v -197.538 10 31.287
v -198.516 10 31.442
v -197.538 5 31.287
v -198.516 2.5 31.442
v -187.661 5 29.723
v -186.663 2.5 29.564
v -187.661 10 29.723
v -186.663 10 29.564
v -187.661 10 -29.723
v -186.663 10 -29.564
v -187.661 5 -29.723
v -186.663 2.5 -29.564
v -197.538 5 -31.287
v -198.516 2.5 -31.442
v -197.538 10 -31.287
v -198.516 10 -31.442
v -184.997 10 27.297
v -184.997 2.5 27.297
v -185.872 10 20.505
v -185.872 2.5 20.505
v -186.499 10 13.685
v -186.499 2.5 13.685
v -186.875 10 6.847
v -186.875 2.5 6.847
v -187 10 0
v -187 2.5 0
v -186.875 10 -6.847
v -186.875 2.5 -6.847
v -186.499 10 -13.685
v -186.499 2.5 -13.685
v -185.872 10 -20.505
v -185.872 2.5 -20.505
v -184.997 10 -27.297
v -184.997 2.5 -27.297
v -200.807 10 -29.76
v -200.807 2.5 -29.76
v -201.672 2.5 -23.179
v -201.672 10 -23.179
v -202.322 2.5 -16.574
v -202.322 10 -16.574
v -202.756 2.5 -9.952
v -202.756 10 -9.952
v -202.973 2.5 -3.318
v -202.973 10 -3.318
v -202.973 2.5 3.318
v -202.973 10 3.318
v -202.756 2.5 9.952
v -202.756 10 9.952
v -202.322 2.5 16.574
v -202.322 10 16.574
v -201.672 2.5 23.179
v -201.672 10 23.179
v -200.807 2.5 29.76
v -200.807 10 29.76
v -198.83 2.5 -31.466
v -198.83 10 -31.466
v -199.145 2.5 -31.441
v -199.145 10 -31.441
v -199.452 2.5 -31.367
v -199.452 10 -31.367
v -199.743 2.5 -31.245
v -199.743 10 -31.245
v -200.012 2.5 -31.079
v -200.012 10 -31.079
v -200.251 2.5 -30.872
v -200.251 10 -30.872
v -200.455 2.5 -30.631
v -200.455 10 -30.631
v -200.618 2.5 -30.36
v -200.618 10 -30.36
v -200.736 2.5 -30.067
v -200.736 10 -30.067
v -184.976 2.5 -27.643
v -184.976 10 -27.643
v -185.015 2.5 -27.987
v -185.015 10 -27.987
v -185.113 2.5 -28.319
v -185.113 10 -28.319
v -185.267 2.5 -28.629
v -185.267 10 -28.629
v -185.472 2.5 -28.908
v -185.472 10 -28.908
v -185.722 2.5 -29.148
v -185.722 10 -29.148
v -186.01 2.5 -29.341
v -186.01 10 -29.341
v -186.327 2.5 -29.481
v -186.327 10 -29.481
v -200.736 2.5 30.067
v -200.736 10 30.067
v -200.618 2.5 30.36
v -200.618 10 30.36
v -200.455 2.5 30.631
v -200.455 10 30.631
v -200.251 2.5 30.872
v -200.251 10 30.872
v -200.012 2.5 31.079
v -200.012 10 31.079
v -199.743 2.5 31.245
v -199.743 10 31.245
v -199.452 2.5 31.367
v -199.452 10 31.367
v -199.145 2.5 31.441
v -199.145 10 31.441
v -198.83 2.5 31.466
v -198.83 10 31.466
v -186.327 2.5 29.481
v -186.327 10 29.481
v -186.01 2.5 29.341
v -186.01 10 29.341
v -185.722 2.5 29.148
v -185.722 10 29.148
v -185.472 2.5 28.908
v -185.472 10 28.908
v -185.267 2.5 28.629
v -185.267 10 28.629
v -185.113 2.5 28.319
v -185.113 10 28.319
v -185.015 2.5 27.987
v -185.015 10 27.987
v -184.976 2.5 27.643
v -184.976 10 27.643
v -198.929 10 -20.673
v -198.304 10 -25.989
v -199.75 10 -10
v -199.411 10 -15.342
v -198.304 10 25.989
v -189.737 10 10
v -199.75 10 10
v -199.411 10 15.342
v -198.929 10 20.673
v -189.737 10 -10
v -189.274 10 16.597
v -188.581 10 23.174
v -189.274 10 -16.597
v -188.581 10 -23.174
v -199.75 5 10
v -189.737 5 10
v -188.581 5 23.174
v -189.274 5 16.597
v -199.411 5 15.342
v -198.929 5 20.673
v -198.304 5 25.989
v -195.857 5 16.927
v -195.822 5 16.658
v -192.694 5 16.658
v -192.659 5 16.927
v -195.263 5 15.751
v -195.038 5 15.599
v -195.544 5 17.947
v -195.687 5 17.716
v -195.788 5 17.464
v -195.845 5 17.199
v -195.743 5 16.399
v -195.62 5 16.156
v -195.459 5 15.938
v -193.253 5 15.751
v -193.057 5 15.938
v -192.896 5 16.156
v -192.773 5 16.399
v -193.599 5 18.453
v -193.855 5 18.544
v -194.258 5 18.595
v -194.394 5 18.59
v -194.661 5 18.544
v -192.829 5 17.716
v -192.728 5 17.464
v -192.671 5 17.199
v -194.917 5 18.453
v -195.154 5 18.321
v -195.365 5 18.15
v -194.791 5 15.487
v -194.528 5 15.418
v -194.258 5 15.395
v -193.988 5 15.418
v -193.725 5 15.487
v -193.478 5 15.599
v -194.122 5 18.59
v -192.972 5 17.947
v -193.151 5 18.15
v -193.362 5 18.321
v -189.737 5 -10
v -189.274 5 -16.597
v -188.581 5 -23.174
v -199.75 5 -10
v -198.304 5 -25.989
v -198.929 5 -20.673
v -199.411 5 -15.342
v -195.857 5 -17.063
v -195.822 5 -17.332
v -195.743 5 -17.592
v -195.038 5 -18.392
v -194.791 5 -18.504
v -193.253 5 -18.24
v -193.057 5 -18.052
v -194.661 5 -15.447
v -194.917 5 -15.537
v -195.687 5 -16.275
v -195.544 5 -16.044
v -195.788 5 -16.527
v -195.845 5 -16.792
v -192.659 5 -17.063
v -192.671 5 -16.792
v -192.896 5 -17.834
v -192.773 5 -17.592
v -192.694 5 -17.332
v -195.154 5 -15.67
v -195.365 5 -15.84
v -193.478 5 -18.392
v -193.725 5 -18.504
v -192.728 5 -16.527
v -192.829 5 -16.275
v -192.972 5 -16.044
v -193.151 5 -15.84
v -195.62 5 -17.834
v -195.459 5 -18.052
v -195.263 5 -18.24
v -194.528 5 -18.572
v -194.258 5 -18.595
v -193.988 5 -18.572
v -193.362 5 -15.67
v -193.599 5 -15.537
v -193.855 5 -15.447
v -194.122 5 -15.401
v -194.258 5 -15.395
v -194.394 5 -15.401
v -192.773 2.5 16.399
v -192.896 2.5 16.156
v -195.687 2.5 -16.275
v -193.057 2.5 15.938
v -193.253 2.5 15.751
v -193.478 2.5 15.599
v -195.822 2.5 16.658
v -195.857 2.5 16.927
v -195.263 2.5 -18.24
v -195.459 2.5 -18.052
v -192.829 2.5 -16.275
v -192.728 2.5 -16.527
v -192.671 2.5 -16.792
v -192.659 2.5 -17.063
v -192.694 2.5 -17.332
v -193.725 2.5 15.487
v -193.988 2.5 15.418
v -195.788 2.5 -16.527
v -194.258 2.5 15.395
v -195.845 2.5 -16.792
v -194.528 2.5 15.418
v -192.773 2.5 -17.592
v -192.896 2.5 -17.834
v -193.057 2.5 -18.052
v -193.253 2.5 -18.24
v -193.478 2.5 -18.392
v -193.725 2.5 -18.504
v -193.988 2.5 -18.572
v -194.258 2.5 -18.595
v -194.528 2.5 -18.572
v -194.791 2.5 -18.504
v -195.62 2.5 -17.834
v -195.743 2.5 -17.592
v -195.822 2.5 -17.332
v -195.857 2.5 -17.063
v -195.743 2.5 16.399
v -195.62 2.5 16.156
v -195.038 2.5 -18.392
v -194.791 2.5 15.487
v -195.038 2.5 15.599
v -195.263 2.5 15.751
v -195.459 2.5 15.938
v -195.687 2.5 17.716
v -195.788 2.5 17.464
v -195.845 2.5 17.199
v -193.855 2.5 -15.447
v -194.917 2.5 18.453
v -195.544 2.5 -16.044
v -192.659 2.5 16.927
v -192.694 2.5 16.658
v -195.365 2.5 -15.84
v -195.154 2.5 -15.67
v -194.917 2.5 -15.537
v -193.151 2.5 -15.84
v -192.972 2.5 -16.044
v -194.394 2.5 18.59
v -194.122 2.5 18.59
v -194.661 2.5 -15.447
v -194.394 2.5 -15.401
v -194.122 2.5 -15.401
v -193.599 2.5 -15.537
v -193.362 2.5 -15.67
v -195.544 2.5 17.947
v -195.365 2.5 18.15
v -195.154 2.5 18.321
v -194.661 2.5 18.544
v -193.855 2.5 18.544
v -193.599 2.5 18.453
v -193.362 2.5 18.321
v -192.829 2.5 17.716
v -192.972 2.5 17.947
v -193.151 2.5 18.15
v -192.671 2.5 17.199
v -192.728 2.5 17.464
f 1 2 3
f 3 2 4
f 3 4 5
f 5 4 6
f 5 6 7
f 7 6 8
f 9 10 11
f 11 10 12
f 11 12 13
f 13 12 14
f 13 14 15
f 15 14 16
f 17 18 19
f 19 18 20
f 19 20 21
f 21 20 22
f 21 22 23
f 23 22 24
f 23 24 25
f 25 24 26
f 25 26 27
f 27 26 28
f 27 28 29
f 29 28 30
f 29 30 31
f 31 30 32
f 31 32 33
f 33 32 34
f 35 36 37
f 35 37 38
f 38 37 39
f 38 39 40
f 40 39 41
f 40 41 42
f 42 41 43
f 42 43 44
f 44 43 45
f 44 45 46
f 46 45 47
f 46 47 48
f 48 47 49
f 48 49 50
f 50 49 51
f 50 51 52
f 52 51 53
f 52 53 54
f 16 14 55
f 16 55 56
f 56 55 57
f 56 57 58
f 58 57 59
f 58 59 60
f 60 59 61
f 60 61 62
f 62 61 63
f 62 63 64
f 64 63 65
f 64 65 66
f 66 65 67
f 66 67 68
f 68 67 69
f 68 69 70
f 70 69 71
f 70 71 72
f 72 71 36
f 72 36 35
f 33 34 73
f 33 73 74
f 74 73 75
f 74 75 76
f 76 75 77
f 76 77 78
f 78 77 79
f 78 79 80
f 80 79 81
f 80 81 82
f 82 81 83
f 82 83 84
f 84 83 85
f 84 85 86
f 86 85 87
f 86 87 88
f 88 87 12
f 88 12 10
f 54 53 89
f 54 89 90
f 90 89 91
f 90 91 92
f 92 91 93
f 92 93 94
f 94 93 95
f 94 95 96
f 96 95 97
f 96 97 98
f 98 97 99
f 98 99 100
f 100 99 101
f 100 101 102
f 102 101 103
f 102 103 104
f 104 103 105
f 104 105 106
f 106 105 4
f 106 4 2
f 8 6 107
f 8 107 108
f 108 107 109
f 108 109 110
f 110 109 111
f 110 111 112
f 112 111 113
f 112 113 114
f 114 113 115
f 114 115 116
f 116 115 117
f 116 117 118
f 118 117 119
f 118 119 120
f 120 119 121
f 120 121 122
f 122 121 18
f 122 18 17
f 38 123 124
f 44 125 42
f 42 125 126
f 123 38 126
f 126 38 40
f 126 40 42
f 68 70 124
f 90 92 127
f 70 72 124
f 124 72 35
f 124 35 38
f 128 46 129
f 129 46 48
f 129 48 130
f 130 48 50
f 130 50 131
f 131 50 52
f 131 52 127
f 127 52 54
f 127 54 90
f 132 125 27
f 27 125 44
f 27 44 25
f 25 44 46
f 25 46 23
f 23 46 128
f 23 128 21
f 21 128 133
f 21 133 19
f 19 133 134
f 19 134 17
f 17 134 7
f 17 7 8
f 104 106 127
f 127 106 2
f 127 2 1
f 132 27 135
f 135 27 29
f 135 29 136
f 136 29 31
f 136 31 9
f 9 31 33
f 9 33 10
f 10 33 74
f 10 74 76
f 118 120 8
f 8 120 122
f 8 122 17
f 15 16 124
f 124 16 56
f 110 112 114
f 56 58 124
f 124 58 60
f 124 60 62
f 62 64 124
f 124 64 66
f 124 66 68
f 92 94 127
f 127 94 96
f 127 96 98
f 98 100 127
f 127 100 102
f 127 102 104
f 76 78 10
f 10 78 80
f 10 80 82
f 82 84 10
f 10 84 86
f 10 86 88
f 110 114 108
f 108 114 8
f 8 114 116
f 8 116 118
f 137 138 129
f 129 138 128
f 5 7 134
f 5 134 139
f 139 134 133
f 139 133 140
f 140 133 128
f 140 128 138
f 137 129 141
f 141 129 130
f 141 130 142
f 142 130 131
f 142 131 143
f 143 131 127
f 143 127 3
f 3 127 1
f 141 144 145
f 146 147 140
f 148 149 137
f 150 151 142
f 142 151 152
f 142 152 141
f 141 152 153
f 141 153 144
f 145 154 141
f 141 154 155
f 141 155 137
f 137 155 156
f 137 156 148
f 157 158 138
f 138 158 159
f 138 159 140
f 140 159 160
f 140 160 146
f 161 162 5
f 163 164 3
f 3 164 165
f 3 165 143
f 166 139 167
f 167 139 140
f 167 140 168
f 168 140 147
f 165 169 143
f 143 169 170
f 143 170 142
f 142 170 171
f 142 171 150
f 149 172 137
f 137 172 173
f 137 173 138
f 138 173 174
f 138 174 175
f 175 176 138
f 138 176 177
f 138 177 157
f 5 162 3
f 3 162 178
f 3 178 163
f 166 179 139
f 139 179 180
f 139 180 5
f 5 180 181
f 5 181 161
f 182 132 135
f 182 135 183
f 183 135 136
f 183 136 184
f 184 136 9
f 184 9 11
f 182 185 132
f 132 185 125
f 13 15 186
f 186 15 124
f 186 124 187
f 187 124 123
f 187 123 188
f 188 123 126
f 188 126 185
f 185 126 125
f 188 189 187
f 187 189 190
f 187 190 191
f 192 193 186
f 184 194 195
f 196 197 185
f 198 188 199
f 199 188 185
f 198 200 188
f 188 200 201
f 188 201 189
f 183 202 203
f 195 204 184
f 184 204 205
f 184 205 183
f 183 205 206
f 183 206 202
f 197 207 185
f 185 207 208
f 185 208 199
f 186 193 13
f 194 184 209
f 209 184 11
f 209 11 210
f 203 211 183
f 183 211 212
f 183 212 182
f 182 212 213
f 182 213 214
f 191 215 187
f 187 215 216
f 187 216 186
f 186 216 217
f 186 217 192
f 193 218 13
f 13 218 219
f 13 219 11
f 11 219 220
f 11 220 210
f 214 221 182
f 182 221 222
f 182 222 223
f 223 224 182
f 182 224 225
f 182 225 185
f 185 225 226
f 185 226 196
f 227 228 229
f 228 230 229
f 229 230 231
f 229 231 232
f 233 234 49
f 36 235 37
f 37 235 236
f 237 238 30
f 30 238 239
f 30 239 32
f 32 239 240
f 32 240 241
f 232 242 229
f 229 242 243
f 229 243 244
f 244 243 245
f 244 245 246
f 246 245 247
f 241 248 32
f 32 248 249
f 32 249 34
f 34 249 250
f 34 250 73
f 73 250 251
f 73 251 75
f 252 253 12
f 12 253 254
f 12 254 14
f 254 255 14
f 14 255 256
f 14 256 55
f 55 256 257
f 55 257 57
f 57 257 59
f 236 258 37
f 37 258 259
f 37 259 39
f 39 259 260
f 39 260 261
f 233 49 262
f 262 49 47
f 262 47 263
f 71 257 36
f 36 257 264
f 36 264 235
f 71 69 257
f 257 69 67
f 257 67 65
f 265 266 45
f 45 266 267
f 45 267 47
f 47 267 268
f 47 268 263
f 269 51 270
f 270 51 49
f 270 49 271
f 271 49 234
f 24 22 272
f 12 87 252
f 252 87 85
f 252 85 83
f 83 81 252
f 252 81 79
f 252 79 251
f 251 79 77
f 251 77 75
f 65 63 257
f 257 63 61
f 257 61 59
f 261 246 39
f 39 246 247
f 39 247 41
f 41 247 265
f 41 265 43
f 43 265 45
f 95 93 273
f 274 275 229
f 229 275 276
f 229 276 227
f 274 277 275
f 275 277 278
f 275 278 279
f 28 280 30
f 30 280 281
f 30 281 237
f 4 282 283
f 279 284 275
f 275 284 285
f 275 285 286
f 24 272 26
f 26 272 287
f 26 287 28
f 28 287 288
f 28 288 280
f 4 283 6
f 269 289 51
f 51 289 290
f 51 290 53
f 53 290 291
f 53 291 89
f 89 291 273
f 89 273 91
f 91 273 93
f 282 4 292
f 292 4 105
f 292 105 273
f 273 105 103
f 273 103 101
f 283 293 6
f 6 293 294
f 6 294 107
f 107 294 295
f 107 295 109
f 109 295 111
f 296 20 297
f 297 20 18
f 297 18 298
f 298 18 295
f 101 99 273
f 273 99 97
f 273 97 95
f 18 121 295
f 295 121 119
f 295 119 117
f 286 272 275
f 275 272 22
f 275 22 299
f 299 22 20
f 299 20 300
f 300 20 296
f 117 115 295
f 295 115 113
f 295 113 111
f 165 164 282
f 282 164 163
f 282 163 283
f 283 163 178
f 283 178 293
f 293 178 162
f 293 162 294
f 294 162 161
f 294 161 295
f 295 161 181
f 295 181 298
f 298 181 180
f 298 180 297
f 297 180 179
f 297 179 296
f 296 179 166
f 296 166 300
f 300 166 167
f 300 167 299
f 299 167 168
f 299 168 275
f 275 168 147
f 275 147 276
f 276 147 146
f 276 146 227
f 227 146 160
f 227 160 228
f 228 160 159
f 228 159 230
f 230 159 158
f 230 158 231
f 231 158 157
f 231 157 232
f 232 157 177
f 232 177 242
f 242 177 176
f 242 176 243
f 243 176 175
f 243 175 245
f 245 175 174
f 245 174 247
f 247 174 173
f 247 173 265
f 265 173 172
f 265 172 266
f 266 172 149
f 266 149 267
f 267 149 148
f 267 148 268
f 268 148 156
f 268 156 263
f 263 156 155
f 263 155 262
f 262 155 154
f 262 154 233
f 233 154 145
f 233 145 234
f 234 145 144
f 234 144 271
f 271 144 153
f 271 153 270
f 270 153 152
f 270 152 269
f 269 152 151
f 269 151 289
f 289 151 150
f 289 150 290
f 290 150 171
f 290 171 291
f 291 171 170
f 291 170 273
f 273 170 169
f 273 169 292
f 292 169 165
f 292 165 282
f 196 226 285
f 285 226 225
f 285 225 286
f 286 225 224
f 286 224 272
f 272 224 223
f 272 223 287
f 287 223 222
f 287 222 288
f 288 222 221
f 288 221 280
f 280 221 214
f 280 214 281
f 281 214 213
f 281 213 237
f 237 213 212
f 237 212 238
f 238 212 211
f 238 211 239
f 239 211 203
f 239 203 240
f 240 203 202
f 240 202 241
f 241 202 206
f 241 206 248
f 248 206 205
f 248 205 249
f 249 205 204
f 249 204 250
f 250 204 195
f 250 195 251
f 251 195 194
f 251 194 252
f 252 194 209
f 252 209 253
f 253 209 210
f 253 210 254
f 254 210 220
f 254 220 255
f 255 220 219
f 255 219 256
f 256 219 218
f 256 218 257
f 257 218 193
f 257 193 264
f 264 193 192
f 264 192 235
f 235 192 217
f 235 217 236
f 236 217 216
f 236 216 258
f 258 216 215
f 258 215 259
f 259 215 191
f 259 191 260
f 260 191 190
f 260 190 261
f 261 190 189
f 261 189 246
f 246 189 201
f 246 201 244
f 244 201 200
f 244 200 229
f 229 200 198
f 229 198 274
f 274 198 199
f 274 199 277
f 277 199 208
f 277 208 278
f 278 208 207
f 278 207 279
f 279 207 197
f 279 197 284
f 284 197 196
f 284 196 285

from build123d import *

# Parameters (mm, degrees)
BOSS_EXTRUDE1_DEPTH        = 10
CUT_EXTRUDE1_DEPTH         = 5
FILLET1_R                  = 2
CUT_EXTRUDE2_START         = -2.5
CUT_EXTRUDE2_DEPTH         = 2.5
F_3_1_3_1_DIAMETER_HOLE1_D = 3.1


with BuildPart() as part:
    # Sketch1 → Boss-Extrude1 (new body)
    with BuildSketch(Plane(origin=(0, 0, 0), x_dir=(1, 0, 0), z_dir=(0, 1, 0))):
        with BuildLine():
            ThreePointArc((-187.660784713, 29.722548358), (-190, 0), (-187.660784713, -29.722548358))
            Line((-187.660784713, -29.722548358), (-197.537668119, -31.286893008))
            ThreePointArc((-197.537668119, -31.286893008), (-200, 0), (-197.537668119, 31.286893008))
            Line((-197.537668119, 31.286893008), (-187.660784713, 29.722548358))
        make_face()
        with BuildLine():
            ThreePointArc((-197.537668119, -31.286893008), (-200, 0), (-197.537668119, 31.286893008))
            Line((-197.537668119, 31.286893008), (-200.500733141, 31.756196403))
            ThreePointArc((-200.500733141, 31.756196403), (-203, 0), (-200.500733141, -31.756196403))
            Line((-200.500733141, -31.756196403), (-197.537668119, -31.286893008))
        make_face()
        with BuildLine():
            Line((-184.697719691, 29.253244963), (-187.660784713, 29.722548358))
            ThreePointArc((-187.660784713, 29.722548358), (-190, 0), (-187.660784713, -29.722548358))
            Line((-187.660784713, -29.722548358), (-184.697719691, -29.253244963))
            ThreePointArc((-184.697719691, -29.253244963), (-187, 0), (-184.697719691, 29.253244963))
        make_face()
    extrude(amount=BOSS_EXTRUDE1_DEPTH)

    # Sketch15 → Cut-Extrude1 (cut)
    with BuildSketch(Plane(origin=(0, 10, 0), x_dir=(1, 0, 0), z_dir=(0, 1, 0))):
        with BuildLine():
            Line((-199.749843554, 10), (-189.73665961, 10))
            ThreePointArc((-189.73665961, 10), (-188.956218405, 19.88837666), (-187.660784713, 29.722548358))
            Line((-187.660784713, 29.722548358), (-197.537668119, 31.286893008))
            ThreePointArc((-197.537668119, 31.286893008), (-198.928692466, 20.673057674), (-199.749843554, 10))
        make_face()
        with BuildLine():
            ThreePointArc((-187.660784713, -29.722548358), (-188.956218405, -19.88837666), (-189.73665961, -10))
            Line((-189.73665961, -10), (-199.749843554, -10))
            ThreePointArc((-199.749843554, -10), (-198.928692466, -20.673057674), (-197.537668119, -31.286893008))
            Line((-197.537668119, -31.286893008), (-187.660784713, -29.722548358))
        make_face()
    extrude(amount=-CUT_EXTRUDE1_DEPTH, mode=Mode.SUBTRACT)

    # Fillet1
    fillet1_edges = [part.edges().sort_by_distance(p)[0] for p in [
        (-200.500733141, 5, 31.756196403),
        (-200.500733141, 5, -31.756196403),
        (-184.697719691, 5, -29.253244963),
        (-184.697719691, 5, 29.253244963),
    ]]
    fillet(fillet1_edges, radius=FILLET1_R)

    # Sketch19 → Cut-Extrude2 (cut)
    with BuildSketch(Plane.XZ.offset(CUT_EXTRUDE2_START)):
        with BuildLine():
            Line((-198.515528472, -31.441770873), (-186.662644351, -29.564458455))
            ThreePointArc((-186.662644351, -29.564458455), (-185.363721979, -28.773196969), (-184.996936421, -27.297133819))
            ThreePointArc((-184.996936421, -27.297133819), (-187, 0), (-184.996936421, 27.297133819))
            ThreePointArc((-184.996936421, 27.297133819), (-185.363721979, 28.773196969), (-186.662644351, 29.564458455))
            Line((-186.662644351, 29.564458455), (-198.515528472, 31.441770873))
            ThreePointArc((-198.515528472, 31.441770873), (-200.012003377, 31.078559473), (-200.806789416, 29.759592144))
            ThreePointArc((-200.806789416, 29.759592144), (-203, 0), (-200.806789416, -29.759592144))
            ThreePointArc((-200.806789416, -29.759592144), (-200.012003377, -31.078559473), (-198.515528472, -31.441770873))
        make_face()
    extrude(amount=CUT_EXTRUDE2_DEPTH, mode=Mode.SUBTRACT)

    # Ø3.1 (3.1) Diameter Hole1 (through all)
    with Locations(Plane(origin=(0, 2.5, 0), x_dir=(-1, 0, 0), z_dir=(0, -1, 0))):
        with Locations((194.257966128, 16.995369836), (194.257966128, -16.995369836)):
            Hole(F_3_1_3_1_DIAMETER_HOLE1_D / 2)


solid = part.part
